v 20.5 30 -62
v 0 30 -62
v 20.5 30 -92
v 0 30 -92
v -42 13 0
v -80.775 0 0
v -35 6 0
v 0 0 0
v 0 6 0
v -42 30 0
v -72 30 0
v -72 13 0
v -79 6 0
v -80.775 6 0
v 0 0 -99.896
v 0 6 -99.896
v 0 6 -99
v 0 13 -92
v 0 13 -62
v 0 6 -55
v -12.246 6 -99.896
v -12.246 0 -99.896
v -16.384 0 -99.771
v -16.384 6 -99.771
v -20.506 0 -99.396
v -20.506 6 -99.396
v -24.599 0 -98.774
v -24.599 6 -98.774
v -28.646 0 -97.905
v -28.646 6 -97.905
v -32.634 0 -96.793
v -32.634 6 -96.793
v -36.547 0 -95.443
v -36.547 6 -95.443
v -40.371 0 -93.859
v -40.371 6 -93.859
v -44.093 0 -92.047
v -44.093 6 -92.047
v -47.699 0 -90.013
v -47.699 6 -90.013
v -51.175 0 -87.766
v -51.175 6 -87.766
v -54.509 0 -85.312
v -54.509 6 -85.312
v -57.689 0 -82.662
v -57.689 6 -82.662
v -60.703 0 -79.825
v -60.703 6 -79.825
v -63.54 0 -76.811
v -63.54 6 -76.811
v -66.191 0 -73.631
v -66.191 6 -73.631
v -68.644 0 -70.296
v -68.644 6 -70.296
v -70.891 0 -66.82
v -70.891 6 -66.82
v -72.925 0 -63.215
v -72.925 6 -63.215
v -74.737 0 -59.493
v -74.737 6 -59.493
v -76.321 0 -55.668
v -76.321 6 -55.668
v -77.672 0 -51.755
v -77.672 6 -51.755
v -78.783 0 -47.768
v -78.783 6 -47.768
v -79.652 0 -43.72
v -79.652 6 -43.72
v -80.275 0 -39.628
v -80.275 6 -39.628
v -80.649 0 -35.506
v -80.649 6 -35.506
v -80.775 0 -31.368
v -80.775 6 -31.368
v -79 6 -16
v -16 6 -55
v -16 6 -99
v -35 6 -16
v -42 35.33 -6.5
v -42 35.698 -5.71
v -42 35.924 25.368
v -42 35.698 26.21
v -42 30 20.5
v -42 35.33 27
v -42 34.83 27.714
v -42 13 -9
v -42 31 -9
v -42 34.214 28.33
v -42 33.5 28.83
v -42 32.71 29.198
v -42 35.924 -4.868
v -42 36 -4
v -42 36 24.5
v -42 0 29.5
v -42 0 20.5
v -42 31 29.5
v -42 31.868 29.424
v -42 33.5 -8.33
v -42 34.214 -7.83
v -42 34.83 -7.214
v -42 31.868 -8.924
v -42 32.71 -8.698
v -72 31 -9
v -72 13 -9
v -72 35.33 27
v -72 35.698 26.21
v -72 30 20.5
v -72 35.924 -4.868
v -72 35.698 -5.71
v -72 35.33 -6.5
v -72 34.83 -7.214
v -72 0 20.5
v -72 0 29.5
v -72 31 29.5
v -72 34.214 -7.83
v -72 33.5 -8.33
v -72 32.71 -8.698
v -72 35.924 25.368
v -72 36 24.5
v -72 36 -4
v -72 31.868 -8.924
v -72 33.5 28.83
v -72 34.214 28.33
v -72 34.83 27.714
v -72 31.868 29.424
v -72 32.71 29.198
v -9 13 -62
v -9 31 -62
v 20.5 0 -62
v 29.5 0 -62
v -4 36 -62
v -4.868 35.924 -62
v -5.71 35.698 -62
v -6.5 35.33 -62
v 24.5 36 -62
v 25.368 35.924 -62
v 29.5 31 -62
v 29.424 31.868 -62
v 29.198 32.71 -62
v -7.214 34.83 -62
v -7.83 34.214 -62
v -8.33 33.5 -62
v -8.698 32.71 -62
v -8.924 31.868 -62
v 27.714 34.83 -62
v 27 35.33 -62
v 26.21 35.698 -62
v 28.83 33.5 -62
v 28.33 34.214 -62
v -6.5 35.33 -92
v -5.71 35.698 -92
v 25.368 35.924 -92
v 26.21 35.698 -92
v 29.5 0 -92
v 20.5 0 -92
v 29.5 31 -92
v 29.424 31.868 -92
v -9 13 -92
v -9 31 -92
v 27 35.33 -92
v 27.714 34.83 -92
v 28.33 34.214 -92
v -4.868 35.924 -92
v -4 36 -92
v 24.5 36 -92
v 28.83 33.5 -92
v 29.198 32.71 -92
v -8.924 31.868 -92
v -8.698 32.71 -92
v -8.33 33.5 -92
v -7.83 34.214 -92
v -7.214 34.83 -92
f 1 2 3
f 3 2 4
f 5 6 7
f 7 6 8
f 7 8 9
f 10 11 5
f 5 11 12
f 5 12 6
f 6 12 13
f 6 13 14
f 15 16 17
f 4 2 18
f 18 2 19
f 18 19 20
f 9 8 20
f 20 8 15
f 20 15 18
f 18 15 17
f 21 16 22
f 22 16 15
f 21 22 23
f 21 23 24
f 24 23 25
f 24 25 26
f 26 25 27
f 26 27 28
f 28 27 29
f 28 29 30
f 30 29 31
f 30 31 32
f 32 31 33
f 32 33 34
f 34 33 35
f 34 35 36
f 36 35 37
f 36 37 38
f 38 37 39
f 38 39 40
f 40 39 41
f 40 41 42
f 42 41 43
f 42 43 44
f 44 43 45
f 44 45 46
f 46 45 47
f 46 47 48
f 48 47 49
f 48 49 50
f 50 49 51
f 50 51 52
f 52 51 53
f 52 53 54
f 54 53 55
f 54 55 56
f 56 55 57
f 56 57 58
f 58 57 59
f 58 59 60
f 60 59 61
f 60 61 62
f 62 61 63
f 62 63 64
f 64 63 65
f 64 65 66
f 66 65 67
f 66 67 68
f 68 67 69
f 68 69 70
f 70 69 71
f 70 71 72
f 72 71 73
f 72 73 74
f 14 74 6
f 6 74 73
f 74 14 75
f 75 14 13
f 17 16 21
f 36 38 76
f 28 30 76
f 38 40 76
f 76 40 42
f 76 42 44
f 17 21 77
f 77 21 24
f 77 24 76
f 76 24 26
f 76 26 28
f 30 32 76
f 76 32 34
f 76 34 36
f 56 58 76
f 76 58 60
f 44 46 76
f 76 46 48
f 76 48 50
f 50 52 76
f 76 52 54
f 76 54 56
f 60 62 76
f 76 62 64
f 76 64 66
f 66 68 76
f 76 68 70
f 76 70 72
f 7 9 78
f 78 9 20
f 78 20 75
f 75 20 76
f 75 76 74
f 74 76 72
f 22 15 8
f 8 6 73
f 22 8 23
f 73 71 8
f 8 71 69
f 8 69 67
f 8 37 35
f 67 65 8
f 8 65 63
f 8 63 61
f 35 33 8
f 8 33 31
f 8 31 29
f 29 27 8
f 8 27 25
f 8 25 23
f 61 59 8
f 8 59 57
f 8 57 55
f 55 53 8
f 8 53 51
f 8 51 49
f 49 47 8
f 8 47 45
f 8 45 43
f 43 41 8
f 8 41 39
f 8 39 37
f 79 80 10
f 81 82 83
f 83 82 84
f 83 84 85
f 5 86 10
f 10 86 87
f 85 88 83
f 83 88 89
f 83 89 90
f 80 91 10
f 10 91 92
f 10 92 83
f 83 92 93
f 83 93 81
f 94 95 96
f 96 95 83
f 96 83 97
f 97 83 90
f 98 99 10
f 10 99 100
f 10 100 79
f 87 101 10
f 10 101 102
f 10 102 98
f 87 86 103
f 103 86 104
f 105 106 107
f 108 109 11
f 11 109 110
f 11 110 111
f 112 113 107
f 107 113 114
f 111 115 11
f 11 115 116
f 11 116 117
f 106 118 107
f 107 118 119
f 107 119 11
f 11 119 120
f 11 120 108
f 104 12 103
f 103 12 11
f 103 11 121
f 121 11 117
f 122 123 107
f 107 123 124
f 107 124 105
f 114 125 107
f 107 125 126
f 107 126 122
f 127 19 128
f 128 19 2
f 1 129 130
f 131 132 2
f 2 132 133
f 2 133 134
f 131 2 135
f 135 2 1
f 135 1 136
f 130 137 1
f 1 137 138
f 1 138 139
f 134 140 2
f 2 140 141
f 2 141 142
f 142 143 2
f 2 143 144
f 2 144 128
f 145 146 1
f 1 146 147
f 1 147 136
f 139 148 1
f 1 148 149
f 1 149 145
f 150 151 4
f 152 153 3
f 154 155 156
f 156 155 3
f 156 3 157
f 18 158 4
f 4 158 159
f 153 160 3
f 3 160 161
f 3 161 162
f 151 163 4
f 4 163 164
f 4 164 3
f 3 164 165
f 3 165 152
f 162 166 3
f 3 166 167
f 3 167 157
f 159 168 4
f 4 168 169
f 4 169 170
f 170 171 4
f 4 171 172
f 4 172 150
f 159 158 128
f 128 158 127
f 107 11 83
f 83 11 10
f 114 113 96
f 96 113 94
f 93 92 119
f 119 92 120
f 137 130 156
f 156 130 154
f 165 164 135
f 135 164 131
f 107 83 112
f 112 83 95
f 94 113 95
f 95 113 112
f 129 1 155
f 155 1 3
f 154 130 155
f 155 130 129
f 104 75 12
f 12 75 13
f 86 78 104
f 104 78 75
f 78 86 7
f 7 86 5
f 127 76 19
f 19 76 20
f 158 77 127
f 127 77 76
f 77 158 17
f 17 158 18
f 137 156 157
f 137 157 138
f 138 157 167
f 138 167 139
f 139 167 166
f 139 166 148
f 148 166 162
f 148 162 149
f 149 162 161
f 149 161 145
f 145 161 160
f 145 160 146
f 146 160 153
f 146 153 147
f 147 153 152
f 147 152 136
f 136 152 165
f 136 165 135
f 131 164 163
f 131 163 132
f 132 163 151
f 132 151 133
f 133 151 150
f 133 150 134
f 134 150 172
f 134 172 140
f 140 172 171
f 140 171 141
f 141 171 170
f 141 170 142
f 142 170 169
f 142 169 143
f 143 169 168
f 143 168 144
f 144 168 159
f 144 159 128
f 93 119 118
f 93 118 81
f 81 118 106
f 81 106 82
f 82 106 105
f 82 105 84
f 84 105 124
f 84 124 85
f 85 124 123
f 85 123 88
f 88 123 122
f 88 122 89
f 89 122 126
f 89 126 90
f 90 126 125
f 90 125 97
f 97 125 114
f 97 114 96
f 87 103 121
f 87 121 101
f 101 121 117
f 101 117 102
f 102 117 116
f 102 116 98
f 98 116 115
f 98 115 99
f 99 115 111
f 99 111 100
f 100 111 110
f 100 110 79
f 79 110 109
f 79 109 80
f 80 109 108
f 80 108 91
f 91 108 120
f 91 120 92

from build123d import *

# Parameters (mm, degrees)
SKETCH1_W           = 30
SKETCH1_H           = 9
SKETCH1_W_2         = 9
SKETCH1_H_2         = 30
BOSS_EXTRUDE1_DEPTH = 6
BOSS_EXTRUDE2_START = 6
SKETCH1_3_W         = 30
SKETCH1_3_H         = 9
SKETCH1_3_W_2       = 9
SKETCH1_3_H_2       = 30
BOSS_EXTRUDE2_DEPTH = 24
BOSS_EXTRUDE3_START = 30
SKETCH1_4_W         = 30
SKETCH1_4_H         = 9
SKETCH1_4_H_2       = 20.5
SKETCH1_4_W_2       = 9
SKETCH1_4_H_3       = 30
SKETCH1_4_W_3       = 20.5
BOSS_EXTRUDE3_DEPTH = 6
BOSS_EXTRUDE4_START = 30
SKETCH1_5_W         = 30
SKETCH1_5_H         = 9
SKETCH1_5_W_2       = 9
SKETCH1_5_H_2       = 30
BOSS_EXTRUDE4_DEPTH = 30
CHAMFER1_SIZE       = 7
FILLET1_R           = 5


with BuildPart() as part:
    # Sketch1 → Boss-Extrude1 (new body)
    with BuildSketch(Plane(origin=(0, 0, 0), x_dir=(1, 0, 0), z_dir=(0, 1, 0))):
        with Locations((-57, 4.5)):
            Rectangle(SKETCH1_W, SKETCH1_H)
        with Locations((-4.5, 77)):
            Rectangle(SKETCH1_W_2, SKETCH1_H_2)
        with BuildLine():
            Line((0, 99.896112213), (-12.24628833, 99.896112213))
            ThreePointArc((-12.24628833, 99.896112213), (-60.703064532, 79.824658322), (-80.774518424, 31.36788212))
            Line((-80.774518424, 31.36788212), (-80.774518424, 0))
            Line((-80.774518424, 0), (-72, 0))
            Line((-72, 0), (-72, 9))
            Line((-72, 9), (-42, 9))
            Line((-42, 9), (-42, 0))
            Line((-42, 0), (0, 0))
            Line((0, 0), (0, 62))
            Line((0, 62), (-9, 62))
            Line((-9, 62), (-9, 92))
            Line((-9, 92), (0, 92))
            Line((0, 92), (0, 99.896112213))
        make_face()
    extrude(amount=BOSS_EXTRUDE1_DEPTH)

    # Sketch1<3> → Boss-Extrude2 (add)
    with BuildSketch(Plane(origin=(0, 0, 0), x_dir=(1, 0, 0), z_dir=(0, 1, 0)).offset(BOSS_EXTRUDE2_START)):
        with Locations((-57, 4.5)):
            Rectangle(SKETCH1_3_W, SKETCH1_3_H)
        with Locations((-4.5, 77)):
            Rectangle(SKETCH1_3_W_2, SKETCH1_3_H_2)
    extrude(amount=BOSS_EXTRUDE2_DEPTH)

    # Sketch1<4> → Boss-Extrude3 (add)
    with BuildSketch(Plane(origin=(0, 0, 0), x_dir=(1, 0, 0), z_dir=(0, 1, 0)).offset(BOSS_EXTRUDE3_START)):
        with Locations((-57, 4.5)):
            Rectangle(SKETCH1_4_W, SKETCH1_4_H)
        with Locations((-57, -10.25)):
            Rectangle(SKETCH1_4_W, SKETCH1_4_H_2)
        with Locations((-57, -25)):
            Rectangle(SKETCH1_4_W, SKETCH1_4_H)
        with Locations((-4.5, 77)):
            Rectangle(SKETCH1_4_W_2, SKETCH1_4_H_3)
        with Locations((10.25, 77)):
            Rectangle(SKETCH1_4_W_3, SKETCH1_4_H_3)
        with Locations((25, 77)):
            Rectangle(SKETCH1_4_W_2, SKETCH1_4_H_3)
    extrude(amount=BOSS_EXTRUDE3_DEPTH)

    # Sketch1<5> → Boss-Extrude4 (add)
    with BuildSketch(Plane(origin=(0, 0, 0), x_dir=(1, 0, 0), z_dir=(0, 1, 0)).offset(BOSS_EXTRUDE4_START)):
        with Locations((-57, -25)):
            Rectangle(SKETCH1_5_W, SKETCH1_5_H)
        with Locations((25, 77)):
            Rectangle(SKETCH1_5_W_2, SKETCH1_5_H_2)
    extrude(amount=-BOSS_EXTRUDE4_DEPTH)

    # Chamfer1
    chamfer1_edges = [part.edges().sort_by_distance(p)[0] for p in [
        (-42, 6, -4.5),
        (-72, 6, -4.5),
        (-57, 6, -9),
        (-4.5, 6, -92),
        (-4.5, 6, -62),
        (-9, 6, -77),
    ]]
    chamfer(chamfer1_edges, length=CHAMFER1_SIZE)

    # Fillet1
    fillet1_edges = [part.edges().sort_by_distance(p)[0] for p in [
        (-57, 36, -9),
        (-57, 36, 29.5),
        (29.5, 36, -77),
        (-9, 36, -77),
    ]]
    fillet(fillet1_edges, radius=FILLET1_R)


solid = part.part
